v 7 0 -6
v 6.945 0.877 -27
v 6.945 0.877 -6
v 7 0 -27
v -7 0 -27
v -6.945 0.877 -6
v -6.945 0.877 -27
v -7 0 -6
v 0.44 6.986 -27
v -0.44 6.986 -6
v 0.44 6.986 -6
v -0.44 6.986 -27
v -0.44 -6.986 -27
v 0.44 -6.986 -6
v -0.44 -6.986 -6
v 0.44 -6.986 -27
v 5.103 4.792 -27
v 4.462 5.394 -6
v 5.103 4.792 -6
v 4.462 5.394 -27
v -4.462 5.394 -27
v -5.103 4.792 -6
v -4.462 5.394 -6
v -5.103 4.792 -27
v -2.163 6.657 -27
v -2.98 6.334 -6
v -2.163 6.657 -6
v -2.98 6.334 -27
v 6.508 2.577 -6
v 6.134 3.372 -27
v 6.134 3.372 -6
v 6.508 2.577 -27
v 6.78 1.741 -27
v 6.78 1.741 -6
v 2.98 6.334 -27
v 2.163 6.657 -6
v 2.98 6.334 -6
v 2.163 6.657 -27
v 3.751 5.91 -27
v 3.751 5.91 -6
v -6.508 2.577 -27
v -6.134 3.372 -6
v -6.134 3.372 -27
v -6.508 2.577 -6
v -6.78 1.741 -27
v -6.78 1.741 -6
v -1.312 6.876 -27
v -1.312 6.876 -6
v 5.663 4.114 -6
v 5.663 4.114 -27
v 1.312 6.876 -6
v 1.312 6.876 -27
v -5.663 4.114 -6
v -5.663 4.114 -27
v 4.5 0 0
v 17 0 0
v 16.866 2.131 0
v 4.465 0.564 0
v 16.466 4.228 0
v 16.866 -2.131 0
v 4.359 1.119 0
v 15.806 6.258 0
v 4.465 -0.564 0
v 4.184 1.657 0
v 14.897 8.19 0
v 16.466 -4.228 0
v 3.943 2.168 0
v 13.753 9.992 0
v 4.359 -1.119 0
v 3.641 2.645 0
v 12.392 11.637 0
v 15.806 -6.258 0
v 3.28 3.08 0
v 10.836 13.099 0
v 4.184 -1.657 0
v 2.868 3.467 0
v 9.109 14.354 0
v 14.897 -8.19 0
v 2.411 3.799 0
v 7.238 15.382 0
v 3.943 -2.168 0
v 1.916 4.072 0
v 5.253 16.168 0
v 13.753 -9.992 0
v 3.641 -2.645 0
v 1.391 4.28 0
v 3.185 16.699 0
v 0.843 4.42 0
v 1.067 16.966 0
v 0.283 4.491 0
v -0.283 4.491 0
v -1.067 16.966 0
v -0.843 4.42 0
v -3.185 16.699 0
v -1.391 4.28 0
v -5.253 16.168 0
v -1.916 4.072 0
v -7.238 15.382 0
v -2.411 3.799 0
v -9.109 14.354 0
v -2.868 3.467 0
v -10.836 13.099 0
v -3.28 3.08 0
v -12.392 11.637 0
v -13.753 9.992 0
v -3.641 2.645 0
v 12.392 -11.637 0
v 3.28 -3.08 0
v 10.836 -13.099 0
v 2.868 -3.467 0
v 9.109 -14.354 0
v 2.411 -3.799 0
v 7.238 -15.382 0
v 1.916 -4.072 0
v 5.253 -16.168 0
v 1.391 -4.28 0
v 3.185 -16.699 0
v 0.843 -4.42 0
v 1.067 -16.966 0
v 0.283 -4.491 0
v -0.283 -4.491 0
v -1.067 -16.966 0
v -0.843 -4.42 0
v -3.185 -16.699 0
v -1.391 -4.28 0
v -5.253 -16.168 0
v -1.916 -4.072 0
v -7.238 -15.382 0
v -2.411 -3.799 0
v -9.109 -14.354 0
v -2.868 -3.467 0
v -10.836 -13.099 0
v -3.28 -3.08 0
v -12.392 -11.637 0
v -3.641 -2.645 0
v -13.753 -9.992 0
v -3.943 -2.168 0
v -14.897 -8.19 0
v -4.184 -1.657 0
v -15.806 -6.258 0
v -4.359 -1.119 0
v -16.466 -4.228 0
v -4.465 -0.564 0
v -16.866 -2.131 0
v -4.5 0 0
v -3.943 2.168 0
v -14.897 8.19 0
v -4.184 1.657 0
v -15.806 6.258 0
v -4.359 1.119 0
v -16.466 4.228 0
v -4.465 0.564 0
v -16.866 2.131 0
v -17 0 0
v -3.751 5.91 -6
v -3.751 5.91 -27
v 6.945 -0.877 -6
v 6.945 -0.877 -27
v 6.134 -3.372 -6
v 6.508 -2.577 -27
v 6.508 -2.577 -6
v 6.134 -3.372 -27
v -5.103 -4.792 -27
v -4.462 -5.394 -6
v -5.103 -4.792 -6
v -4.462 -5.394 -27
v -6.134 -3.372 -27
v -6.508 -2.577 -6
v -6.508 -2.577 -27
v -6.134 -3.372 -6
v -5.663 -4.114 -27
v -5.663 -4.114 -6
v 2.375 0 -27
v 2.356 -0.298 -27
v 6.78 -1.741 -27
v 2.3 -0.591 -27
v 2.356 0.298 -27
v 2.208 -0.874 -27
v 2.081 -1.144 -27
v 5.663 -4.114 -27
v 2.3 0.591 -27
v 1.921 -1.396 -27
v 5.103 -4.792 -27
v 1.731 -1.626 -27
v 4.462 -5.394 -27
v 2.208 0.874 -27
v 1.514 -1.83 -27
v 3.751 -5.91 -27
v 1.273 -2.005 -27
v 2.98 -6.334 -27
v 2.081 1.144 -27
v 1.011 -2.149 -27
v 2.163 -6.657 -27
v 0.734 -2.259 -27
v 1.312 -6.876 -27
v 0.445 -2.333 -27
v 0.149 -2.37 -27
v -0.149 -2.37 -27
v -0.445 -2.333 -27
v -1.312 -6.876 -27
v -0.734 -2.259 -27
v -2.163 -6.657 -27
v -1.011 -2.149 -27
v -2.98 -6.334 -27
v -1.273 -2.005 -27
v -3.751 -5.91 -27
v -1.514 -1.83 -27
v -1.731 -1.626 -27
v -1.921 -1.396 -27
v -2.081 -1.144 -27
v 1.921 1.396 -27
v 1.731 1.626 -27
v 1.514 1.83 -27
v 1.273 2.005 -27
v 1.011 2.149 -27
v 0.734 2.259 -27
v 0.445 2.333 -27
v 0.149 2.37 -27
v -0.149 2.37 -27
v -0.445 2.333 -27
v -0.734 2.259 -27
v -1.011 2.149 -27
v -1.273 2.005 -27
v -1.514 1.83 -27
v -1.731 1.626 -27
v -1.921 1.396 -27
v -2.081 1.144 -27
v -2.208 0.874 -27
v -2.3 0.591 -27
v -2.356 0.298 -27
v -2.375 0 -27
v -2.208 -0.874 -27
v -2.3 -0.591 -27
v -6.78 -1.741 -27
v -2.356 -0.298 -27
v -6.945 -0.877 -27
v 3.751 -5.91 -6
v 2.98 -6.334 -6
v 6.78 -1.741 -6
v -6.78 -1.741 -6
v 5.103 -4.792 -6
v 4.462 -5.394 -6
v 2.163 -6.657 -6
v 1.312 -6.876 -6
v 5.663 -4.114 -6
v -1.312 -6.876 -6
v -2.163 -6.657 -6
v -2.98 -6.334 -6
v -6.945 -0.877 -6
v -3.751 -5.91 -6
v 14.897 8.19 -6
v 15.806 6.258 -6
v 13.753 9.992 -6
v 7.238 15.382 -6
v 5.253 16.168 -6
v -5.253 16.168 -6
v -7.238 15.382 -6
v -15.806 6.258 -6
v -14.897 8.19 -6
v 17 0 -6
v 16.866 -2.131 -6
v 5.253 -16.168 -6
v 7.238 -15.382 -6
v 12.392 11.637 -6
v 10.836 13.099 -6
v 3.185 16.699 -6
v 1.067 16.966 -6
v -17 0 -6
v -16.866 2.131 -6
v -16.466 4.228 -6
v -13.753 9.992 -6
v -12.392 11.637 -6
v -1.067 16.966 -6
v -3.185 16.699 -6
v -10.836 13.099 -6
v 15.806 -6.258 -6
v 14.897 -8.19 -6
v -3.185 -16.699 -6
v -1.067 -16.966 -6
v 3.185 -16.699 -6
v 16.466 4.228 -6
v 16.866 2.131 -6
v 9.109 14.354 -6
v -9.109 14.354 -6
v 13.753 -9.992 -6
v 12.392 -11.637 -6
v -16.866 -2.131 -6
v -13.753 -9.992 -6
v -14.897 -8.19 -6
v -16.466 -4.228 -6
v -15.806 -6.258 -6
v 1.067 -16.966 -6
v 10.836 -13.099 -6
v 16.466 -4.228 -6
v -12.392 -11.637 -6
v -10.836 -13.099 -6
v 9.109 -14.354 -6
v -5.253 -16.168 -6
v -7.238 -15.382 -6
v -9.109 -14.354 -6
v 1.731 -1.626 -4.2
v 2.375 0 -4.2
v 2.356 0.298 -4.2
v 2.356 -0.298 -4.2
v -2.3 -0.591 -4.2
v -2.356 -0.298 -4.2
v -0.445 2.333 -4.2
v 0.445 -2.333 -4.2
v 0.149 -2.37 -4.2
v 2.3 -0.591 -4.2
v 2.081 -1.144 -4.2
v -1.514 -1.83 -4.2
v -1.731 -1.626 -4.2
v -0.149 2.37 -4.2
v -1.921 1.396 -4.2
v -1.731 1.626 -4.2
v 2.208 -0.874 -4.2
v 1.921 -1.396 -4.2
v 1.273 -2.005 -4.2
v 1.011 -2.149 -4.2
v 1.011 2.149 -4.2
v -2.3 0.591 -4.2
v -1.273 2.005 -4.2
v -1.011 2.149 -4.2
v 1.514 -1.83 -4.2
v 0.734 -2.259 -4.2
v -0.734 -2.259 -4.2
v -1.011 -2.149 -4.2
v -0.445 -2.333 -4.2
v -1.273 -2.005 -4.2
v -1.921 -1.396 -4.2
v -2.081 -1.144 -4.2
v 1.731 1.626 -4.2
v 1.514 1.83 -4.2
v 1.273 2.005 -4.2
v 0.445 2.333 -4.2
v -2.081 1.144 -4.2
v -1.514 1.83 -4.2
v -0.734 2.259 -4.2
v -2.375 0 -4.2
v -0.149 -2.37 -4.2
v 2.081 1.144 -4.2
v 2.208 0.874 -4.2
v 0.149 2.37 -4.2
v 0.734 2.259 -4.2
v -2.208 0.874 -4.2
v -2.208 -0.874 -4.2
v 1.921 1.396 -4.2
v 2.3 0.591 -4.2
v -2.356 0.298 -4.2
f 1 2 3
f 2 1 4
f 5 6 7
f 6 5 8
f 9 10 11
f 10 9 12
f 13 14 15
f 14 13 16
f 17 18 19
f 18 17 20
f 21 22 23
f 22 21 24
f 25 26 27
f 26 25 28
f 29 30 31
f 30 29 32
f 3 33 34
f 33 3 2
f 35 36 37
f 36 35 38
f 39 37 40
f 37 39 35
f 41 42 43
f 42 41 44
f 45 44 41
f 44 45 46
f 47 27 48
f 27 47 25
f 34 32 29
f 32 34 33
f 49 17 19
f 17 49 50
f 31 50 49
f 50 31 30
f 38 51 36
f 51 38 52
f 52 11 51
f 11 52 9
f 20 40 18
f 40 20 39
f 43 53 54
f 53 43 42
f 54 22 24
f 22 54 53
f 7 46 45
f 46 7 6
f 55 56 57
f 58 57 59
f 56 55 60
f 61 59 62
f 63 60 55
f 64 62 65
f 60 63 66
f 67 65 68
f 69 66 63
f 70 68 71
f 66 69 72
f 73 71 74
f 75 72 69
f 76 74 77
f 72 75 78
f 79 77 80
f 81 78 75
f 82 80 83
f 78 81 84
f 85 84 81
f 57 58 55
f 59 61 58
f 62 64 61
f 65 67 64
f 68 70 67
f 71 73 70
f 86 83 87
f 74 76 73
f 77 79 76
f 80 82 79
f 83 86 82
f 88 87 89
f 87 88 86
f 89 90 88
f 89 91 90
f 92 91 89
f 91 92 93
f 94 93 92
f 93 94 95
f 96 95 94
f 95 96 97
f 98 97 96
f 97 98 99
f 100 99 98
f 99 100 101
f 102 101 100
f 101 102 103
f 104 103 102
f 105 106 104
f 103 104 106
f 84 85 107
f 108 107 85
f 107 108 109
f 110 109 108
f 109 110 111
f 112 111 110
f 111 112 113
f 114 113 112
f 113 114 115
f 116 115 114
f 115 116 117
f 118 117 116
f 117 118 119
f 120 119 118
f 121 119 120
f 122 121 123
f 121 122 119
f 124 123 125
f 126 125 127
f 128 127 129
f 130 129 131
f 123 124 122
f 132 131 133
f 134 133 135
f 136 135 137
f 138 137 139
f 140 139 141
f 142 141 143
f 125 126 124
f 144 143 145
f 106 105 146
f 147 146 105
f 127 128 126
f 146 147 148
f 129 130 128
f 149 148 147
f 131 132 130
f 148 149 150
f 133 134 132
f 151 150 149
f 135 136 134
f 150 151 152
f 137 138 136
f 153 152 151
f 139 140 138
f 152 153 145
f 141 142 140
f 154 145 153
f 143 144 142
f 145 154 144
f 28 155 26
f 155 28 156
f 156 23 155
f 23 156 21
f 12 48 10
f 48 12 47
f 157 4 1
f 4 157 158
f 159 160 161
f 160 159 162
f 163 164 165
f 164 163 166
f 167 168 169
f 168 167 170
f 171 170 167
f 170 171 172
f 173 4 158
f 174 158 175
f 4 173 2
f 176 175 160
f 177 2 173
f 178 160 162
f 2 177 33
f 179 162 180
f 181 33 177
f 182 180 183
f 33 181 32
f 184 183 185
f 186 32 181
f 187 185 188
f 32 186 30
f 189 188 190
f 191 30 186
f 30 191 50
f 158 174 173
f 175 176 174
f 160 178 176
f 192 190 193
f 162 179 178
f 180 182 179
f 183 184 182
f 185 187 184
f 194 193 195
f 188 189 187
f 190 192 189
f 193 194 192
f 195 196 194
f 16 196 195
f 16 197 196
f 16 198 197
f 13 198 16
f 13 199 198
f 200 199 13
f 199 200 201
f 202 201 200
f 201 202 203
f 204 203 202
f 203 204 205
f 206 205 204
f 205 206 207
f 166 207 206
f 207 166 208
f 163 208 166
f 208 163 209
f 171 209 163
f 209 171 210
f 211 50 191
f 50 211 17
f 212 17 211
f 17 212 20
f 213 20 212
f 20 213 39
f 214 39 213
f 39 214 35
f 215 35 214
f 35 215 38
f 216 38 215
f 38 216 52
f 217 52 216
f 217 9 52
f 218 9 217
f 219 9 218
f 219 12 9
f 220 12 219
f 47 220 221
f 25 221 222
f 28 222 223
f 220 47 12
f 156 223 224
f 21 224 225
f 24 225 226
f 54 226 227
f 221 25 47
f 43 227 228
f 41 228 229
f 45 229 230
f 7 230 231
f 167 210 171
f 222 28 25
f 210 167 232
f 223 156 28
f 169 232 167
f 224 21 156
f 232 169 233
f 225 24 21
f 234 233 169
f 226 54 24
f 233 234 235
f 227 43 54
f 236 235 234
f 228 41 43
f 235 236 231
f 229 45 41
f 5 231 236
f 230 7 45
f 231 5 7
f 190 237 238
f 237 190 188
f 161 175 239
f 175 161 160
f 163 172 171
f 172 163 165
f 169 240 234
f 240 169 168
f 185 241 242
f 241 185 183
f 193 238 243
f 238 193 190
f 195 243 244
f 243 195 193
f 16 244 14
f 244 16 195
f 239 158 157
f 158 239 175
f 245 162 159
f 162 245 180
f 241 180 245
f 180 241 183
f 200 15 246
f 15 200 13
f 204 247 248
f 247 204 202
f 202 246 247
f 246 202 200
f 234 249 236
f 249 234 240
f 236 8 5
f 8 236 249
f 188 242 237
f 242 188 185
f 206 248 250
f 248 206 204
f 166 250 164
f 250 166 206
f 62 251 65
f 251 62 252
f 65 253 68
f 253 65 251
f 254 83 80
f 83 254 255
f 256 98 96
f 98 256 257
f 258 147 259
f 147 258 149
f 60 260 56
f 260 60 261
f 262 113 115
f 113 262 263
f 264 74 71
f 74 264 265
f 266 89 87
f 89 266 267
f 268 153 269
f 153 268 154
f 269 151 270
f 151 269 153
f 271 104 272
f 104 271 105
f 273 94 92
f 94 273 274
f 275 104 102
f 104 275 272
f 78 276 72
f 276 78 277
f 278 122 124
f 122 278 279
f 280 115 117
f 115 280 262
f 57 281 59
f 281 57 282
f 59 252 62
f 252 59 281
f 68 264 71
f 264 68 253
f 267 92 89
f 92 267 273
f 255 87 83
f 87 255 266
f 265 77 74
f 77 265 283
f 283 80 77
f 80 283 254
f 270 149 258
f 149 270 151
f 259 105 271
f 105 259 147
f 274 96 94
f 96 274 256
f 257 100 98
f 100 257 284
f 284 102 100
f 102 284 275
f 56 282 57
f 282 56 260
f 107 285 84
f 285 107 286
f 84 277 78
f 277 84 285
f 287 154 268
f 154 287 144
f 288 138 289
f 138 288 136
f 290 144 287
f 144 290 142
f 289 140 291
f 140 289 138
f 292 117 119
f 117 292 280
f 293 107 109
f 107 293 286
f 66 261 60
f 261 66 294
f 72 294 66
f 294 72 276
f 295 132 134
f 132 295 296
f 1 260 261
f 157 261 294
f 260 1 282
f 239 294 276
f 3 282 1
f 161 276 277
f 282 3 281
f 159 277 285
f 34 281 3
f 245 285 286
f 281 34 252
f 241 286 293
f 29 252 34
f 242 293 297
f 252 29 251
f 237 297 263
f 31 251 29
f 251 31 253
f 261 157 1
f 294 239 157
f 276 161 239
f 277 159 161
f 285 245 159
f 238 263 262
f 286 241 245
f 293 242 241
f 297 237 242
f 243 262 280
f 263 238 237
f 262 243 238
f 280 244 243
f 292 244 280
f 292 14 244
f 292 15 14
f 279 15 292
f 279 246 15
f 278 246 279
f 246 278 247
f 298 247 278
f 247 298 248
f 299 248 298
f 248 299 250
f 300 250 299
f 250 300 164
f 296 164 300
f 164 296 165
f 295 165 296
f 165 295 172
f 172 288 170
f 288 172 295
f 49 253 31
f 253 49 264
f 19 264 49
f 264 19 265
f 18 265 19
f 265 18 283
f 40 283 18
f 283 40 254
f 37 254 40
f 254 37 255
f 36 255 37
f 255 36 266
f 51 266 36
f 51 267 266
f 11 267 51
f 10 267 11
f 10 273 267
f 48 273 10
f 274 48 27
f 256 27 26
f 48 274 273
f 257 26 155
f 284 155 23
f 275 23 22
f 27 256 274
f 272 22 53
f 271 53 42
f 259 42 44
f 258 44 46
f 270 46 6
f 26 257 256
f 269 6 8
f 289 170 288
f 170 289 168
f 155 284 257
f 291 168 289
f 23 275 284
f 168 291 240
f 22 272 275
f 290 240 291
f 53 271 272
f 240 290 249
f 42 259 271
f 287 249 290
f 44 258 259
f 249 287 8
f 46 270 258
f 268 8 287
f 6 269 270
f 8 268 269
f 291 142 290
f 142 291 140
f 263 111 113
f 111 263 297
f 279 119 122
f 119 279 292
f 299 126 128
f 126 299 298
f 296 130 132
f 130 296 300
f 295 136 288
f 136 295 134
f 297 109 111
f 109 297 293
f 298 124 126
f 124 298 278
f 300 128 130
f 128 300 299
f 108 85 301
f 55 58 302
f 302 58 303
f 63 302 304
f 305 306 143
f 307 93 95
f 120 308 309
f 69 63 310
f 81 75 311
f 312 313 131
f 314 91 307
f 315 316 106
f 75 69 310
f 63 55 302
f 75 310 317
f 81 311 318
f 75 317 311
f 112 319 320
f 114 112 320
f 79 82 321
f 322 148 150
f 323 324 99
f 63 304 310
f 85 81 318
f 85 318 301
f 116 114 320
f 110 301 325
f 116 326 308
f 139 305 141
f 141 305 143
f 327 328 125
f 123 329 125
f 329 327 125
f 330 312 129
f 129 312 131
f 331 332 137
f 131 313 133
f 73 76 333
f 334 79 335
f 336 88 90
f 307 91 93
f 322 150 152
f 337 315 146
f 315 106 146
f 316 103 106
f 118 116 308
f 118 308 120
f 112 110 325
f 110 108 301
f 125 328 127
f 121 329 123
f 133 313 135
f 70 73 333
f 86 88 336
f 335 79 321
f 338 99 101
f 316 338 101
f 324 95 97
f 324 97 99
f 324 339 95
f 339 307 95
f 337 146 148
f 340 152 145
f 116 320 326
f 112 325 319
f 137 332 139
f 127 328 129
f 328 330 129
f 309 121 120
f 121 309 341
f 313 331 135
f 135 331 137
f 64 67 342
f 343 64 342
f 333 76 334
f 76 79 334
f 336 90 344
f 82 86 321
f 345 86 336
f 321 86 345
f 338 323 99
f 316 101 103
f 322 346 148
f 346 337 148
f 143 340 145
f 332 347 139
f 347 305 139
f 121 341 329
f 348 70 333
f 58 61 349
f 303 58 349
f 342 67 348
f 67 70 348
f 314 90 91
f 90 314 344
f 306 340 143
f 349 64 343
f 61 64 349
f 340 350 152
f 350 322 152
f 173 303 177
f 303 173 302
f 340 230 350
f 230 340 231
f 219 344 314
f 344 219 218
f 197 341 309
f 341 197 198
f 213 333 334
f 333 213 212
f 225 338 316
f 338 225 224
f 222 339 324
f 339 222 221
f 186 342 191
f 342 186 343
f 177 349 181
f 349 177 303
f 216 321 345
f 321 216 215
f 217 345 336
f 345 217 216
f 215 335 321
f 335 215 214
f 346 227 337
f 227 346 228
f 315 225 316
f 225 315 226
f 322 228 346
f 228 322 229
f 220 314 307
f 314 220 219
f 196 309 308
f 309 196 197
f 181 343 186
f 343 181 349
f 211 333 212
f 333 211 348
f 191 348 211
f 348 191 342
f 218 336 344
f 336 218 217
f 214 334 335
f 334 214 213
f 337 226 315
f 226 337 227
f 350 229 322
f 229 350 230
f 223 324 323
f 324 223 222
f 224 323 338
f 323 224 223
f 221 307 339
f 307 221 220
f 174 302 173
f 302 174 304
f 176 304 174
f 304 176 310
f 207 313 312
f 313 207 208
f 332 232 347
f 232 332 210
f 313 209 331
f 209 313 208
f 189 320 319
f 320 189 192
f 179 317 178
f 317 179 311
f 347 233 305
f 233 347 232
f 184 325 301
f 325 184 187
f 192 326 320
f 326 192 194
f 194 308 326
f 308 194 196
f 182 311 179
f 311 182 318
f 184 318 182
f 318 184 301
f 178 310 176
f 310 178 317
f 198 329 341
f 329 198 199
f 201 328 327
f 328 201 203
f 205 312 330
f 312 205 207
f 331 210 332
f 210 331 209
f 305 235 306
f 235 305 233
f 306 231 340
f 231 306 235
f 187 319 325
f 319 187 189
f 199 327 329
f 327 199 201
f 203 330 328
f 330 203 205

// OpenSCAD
$fn = 50;


difference() {
	union() {
		translate(v = [0, 0, -27.0000000000]) {
			cylinder(h = 27, r = 7.0000000000);
		}
		translate(v = [0, 0, -6.0000000000]) {
			cylinder(h = 6, r = 17.0000000000);
		}
	}
	union() {
		translate(v = [0, 0, 0]) {
			rotate(a = [0, 0, 0]) {
				difference() {
					union() {
						#translate(v = [0, 0, -27.0000000000]) {
							cylinder(h = 27, r = 2.2500000000);
						}
						#translate(v = [0, 0, -4.2000000000]) {
							cylinder(h = 4.2000000000, r = 7.0000000000, r1 = 2.3750000000, r2 = 4.5000000000);
						}
						#translate(v = [0, 0, -27.0000000000]) {
							cylinder(h = 27, r = 2.3750000000);
						}
						#translate(v = [0, 0, -27.0000000000]) {
							cylinder(h = 27, r = 2.2500000000);
						}
					}
					union();
				}
			}
		}
	}
}
